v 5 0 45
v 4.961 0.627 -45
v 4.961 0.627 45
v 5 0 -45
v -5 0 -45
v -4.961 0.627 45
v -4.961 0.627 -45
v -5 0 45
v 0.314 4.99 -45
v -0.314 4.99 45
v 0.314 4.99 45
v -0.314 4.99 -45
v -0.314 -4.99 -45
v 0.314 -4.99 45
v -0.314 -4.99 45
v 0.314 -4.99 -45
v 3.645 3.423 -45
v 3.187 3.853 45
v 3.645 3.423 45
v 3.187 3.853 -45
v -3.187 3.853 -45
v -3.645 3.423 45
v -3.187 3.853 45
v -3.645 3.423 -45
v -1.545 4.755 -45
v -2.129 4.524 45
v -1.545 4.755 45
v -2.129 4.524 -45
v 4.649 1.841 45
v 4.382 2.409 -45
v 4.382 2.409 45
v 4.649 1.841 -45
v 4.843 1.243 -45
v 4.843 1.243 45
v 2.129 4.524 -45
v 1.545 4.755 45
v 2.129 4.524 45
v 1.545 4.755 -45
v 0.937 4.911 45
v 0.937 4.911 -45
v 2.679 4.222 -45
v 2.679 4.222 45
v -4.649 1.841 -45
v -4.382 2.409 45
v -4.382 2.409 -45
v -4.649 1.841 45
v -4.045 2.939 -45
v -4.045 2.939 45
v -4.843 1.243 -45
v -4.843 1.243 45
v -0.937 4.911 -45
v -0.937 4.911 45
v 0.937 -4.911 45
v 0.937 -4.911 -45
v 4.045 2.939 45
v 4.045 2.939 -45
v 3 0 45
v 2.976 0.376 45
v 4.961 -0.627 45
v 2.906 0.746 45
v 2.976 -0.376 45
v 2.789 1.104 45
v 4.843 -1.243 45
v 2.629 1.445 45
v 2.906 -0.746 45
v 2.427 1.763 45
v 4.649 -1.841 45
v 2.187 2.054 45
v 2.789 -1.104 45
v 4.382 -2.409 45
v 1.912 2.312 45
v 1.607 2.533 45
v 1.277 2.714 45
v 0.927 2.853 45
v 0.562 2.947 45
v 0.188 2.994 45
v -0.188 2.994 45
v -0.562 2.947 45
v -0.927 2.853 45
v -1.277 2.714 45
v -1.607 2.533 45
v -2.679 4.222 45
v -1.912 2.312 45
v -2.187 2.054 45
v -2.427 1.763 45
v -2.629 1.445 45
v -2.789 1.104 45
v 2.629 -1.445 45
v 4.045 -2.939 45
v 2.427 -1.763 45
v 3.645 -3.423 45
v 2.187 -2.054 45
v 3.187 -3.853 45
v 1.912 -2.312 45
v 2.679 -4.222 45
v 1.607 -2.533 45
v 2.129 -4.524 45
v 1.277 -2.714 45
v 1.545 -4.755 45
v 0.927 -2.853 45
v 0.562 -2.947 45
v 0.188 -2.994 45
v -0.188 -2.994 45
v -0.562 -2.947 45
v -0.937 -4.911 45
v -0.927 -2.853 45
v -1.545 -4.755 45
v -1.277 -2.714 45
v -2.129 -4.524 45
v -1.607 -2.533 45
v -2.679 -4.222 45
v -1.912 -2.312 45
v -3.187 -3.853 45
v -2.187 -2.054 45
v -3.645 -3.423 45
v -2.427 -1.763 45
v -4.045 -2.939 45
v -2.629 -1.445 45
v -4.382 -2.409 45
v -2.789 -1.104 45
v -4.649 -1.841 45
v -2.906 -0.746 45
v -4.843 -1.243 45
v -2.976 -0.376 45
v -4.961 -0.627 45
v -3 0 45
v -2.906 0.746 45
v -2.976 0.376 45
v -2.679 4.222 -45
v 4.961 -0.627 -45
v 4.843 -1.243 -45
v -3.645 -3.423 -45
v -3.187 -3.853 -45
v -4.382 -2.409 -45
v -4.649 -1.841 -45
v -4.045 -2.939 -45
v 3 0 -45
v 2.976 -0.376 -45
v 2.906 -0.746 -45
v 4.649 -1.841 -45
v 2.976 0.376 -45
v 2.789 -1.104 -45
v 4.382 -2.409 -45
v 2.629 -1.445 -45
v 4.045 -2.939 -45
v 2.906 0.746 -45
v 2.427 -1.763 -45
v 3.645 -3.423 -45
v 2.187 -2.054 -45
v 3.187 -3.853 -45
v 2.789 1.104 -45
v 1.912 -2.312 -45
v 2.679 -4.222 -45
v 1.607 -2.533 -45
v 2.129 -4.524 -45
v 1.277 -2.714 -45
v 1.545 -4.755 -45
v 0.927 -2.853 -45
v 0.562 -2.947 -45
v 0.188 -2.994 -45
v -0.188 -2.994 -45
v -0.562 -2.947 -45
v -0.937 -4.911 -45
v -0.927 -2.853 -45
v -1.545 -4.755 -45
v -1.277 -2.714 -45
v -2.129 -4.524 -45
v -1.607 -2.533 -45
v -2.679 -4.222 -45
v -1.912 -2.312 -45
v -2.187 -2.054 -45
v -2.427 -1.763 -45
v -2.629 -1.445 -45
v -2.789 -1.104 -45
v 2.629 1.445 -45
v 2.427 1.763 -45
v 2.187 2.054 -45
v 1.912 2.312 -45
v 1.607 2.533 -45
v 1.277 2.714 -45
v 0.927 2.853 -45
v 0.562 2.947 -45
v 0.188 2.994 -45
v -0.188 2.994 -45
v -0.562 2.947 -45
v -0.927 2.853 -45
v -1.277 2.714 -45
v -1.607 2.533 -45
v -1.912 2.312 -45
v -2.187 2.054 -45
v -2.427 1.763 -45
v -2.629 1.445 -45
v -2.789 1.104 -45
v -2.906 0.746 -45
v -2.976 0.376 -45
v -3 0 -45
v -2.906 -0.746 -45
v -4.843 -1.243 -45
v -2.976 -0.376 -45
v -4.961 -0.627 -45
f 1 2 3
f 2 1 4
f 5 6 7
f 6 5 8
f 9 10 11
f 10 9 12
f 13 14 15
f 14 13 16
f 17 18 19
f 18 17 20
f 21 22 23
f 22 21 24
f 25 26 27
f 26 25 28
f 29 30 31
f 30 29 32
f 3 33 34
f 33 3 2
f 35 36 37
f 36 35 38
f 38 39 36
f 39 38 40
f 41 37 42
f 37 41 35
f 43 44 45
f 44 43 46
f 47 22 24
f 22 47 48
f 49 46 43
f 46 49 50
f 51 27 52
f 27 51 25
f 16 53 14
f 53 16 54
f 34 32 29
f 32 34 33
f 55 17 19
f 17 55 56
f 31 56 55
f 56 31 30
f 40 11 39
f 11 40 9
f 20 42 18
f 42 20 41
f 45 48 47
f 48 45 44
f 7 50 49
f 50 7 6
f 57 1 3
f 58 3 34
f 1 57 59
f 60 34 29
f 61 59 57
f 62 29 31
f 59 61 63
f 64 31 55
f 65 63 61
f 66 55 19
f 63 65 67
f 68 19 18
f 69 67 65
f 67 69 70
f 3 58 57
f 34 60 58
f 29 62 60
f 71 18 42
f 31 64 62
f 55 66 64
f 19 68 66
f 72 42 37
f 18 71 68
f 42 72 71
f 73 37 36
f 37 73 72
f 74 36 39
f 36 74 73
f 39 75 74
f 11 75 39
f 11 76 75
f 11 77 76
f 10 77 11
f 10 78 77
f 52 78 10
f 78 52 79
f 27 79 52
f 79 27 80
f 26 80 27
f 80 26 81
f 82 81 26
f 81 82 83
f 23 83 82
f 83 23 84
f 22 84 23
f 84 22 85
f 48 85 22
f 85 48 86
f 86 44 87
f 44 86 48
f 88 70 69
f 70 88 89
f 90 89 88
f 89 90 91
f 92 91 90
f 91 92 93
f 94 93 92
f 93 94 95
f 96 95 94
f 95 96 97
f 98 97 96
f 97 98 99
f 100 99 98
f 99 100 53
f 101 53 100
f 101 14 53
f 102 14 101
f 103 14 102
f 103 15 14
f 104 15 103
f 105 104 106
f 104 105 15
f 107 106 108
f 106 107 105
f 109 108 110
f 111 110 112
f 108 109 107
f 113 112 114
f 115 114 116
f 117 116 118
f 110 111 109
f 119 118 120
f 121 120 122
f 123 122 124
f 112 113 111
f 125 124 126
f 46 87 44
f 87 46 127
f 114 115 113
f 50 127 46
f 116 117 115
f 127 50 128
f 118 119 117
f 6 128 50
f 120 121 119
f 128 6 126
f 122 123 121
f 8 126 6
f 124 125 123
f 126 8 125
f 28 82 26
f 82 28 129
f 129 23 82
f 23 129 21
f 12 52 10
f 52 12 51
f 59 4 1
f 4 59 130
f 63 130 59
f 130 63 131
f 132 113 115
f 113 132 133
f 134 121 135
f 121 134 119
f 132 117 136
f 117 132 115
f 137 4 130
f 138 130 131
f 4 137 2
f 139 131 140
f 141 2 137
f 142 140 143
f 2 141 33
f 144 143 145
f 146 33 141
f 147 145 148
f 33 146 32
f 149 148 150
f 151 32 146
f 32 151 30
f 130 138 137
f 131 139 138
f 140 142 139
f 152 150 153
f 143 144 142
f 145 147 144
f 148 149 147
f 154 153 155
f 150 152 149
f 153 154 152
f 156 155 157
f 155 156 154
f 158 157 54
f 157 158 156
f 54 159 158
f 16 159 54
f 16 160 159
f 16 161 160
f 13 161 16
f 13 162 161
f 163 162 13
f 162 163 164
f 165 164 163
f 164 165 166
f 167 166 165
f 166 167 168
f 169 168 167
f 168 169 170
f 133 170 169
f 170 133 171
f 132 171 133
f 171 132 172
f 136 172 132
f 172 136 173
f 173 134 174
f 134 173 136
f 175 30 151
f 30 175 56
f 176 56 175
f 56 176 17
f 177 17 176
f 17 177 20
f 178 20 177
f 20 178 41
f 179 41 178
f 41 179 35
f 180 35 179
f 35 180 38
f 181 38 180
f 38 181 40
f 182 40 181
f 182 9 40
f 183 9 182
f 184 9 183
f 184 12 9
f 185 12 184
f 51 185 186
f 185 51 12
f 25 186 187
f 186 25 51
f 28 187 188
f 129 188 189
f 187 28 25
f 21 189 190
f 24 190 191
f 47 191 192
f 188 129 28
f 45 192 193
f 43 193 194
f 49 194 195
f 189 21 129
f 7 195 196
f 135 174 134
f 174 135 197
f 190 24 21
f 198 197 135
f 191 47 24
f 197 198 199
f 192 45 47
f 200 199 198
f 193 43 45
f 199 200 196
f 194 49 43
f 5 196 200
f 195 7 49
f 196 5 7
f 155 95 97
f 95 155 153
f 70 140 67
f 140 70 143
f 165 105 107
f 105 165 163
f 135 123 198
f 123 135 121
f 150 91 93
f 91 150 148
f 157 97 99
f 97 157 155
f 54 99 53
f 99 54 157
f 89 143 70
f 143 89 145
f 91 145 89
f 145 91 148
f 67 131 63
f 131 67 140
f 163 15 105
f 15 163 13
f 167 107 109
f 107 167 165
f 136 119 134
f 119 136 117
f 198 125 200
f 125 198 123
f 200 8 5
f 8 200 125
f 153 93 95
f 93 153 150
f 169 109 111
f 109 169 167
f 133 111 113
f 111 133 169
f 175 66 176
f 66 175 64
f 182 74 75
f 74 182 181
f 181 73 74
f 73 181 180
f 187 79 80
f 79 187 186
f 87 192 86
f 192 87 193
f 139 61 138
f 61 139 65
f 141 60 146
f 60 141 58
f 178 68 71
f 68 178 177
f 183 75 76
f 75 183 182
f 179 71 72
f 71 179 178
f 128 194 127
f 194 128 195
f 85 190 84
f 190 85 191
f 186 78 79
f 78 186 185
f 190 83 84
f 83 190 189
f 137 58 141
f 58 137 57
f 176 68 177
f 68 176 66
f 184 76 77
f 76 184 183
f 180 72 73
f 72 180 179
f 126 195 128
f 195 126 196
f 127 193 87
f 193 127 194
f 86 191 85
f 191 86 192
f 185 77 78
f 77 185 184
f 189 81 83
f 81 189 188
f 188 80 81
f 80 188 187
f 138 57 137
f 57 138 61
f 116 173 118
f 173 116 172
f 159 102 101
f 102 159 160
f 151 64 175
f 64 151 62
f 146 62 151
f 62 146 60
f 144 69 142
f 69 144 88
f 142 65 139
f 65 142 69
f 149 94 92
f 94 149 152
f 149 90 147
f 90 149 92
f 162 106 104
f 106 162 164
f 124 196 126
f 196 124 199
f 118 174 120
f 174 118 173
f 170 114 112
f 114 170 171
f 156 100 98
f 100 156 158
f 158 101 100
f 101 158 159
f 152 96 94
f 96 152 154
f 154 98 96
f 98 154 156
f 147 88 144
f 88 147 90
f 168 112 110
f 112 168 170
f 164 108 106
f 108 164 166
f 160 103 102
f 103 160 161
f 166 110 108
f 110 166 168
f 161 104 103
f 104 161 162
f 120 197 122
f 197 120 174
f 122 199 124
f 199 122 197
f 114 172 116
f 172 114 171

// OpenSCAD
$fn = 50;


difference() {
	union() {
		translate(v = [0, 0, -45.0000000000]) {
			cylinder(h = 90, r = 5.0000000000);
		}
	}
	union() {
		translate(v = [0, 0, -100.0000000000]) {
			cylinder(h = 200, r = 3);
		}
	}
}
